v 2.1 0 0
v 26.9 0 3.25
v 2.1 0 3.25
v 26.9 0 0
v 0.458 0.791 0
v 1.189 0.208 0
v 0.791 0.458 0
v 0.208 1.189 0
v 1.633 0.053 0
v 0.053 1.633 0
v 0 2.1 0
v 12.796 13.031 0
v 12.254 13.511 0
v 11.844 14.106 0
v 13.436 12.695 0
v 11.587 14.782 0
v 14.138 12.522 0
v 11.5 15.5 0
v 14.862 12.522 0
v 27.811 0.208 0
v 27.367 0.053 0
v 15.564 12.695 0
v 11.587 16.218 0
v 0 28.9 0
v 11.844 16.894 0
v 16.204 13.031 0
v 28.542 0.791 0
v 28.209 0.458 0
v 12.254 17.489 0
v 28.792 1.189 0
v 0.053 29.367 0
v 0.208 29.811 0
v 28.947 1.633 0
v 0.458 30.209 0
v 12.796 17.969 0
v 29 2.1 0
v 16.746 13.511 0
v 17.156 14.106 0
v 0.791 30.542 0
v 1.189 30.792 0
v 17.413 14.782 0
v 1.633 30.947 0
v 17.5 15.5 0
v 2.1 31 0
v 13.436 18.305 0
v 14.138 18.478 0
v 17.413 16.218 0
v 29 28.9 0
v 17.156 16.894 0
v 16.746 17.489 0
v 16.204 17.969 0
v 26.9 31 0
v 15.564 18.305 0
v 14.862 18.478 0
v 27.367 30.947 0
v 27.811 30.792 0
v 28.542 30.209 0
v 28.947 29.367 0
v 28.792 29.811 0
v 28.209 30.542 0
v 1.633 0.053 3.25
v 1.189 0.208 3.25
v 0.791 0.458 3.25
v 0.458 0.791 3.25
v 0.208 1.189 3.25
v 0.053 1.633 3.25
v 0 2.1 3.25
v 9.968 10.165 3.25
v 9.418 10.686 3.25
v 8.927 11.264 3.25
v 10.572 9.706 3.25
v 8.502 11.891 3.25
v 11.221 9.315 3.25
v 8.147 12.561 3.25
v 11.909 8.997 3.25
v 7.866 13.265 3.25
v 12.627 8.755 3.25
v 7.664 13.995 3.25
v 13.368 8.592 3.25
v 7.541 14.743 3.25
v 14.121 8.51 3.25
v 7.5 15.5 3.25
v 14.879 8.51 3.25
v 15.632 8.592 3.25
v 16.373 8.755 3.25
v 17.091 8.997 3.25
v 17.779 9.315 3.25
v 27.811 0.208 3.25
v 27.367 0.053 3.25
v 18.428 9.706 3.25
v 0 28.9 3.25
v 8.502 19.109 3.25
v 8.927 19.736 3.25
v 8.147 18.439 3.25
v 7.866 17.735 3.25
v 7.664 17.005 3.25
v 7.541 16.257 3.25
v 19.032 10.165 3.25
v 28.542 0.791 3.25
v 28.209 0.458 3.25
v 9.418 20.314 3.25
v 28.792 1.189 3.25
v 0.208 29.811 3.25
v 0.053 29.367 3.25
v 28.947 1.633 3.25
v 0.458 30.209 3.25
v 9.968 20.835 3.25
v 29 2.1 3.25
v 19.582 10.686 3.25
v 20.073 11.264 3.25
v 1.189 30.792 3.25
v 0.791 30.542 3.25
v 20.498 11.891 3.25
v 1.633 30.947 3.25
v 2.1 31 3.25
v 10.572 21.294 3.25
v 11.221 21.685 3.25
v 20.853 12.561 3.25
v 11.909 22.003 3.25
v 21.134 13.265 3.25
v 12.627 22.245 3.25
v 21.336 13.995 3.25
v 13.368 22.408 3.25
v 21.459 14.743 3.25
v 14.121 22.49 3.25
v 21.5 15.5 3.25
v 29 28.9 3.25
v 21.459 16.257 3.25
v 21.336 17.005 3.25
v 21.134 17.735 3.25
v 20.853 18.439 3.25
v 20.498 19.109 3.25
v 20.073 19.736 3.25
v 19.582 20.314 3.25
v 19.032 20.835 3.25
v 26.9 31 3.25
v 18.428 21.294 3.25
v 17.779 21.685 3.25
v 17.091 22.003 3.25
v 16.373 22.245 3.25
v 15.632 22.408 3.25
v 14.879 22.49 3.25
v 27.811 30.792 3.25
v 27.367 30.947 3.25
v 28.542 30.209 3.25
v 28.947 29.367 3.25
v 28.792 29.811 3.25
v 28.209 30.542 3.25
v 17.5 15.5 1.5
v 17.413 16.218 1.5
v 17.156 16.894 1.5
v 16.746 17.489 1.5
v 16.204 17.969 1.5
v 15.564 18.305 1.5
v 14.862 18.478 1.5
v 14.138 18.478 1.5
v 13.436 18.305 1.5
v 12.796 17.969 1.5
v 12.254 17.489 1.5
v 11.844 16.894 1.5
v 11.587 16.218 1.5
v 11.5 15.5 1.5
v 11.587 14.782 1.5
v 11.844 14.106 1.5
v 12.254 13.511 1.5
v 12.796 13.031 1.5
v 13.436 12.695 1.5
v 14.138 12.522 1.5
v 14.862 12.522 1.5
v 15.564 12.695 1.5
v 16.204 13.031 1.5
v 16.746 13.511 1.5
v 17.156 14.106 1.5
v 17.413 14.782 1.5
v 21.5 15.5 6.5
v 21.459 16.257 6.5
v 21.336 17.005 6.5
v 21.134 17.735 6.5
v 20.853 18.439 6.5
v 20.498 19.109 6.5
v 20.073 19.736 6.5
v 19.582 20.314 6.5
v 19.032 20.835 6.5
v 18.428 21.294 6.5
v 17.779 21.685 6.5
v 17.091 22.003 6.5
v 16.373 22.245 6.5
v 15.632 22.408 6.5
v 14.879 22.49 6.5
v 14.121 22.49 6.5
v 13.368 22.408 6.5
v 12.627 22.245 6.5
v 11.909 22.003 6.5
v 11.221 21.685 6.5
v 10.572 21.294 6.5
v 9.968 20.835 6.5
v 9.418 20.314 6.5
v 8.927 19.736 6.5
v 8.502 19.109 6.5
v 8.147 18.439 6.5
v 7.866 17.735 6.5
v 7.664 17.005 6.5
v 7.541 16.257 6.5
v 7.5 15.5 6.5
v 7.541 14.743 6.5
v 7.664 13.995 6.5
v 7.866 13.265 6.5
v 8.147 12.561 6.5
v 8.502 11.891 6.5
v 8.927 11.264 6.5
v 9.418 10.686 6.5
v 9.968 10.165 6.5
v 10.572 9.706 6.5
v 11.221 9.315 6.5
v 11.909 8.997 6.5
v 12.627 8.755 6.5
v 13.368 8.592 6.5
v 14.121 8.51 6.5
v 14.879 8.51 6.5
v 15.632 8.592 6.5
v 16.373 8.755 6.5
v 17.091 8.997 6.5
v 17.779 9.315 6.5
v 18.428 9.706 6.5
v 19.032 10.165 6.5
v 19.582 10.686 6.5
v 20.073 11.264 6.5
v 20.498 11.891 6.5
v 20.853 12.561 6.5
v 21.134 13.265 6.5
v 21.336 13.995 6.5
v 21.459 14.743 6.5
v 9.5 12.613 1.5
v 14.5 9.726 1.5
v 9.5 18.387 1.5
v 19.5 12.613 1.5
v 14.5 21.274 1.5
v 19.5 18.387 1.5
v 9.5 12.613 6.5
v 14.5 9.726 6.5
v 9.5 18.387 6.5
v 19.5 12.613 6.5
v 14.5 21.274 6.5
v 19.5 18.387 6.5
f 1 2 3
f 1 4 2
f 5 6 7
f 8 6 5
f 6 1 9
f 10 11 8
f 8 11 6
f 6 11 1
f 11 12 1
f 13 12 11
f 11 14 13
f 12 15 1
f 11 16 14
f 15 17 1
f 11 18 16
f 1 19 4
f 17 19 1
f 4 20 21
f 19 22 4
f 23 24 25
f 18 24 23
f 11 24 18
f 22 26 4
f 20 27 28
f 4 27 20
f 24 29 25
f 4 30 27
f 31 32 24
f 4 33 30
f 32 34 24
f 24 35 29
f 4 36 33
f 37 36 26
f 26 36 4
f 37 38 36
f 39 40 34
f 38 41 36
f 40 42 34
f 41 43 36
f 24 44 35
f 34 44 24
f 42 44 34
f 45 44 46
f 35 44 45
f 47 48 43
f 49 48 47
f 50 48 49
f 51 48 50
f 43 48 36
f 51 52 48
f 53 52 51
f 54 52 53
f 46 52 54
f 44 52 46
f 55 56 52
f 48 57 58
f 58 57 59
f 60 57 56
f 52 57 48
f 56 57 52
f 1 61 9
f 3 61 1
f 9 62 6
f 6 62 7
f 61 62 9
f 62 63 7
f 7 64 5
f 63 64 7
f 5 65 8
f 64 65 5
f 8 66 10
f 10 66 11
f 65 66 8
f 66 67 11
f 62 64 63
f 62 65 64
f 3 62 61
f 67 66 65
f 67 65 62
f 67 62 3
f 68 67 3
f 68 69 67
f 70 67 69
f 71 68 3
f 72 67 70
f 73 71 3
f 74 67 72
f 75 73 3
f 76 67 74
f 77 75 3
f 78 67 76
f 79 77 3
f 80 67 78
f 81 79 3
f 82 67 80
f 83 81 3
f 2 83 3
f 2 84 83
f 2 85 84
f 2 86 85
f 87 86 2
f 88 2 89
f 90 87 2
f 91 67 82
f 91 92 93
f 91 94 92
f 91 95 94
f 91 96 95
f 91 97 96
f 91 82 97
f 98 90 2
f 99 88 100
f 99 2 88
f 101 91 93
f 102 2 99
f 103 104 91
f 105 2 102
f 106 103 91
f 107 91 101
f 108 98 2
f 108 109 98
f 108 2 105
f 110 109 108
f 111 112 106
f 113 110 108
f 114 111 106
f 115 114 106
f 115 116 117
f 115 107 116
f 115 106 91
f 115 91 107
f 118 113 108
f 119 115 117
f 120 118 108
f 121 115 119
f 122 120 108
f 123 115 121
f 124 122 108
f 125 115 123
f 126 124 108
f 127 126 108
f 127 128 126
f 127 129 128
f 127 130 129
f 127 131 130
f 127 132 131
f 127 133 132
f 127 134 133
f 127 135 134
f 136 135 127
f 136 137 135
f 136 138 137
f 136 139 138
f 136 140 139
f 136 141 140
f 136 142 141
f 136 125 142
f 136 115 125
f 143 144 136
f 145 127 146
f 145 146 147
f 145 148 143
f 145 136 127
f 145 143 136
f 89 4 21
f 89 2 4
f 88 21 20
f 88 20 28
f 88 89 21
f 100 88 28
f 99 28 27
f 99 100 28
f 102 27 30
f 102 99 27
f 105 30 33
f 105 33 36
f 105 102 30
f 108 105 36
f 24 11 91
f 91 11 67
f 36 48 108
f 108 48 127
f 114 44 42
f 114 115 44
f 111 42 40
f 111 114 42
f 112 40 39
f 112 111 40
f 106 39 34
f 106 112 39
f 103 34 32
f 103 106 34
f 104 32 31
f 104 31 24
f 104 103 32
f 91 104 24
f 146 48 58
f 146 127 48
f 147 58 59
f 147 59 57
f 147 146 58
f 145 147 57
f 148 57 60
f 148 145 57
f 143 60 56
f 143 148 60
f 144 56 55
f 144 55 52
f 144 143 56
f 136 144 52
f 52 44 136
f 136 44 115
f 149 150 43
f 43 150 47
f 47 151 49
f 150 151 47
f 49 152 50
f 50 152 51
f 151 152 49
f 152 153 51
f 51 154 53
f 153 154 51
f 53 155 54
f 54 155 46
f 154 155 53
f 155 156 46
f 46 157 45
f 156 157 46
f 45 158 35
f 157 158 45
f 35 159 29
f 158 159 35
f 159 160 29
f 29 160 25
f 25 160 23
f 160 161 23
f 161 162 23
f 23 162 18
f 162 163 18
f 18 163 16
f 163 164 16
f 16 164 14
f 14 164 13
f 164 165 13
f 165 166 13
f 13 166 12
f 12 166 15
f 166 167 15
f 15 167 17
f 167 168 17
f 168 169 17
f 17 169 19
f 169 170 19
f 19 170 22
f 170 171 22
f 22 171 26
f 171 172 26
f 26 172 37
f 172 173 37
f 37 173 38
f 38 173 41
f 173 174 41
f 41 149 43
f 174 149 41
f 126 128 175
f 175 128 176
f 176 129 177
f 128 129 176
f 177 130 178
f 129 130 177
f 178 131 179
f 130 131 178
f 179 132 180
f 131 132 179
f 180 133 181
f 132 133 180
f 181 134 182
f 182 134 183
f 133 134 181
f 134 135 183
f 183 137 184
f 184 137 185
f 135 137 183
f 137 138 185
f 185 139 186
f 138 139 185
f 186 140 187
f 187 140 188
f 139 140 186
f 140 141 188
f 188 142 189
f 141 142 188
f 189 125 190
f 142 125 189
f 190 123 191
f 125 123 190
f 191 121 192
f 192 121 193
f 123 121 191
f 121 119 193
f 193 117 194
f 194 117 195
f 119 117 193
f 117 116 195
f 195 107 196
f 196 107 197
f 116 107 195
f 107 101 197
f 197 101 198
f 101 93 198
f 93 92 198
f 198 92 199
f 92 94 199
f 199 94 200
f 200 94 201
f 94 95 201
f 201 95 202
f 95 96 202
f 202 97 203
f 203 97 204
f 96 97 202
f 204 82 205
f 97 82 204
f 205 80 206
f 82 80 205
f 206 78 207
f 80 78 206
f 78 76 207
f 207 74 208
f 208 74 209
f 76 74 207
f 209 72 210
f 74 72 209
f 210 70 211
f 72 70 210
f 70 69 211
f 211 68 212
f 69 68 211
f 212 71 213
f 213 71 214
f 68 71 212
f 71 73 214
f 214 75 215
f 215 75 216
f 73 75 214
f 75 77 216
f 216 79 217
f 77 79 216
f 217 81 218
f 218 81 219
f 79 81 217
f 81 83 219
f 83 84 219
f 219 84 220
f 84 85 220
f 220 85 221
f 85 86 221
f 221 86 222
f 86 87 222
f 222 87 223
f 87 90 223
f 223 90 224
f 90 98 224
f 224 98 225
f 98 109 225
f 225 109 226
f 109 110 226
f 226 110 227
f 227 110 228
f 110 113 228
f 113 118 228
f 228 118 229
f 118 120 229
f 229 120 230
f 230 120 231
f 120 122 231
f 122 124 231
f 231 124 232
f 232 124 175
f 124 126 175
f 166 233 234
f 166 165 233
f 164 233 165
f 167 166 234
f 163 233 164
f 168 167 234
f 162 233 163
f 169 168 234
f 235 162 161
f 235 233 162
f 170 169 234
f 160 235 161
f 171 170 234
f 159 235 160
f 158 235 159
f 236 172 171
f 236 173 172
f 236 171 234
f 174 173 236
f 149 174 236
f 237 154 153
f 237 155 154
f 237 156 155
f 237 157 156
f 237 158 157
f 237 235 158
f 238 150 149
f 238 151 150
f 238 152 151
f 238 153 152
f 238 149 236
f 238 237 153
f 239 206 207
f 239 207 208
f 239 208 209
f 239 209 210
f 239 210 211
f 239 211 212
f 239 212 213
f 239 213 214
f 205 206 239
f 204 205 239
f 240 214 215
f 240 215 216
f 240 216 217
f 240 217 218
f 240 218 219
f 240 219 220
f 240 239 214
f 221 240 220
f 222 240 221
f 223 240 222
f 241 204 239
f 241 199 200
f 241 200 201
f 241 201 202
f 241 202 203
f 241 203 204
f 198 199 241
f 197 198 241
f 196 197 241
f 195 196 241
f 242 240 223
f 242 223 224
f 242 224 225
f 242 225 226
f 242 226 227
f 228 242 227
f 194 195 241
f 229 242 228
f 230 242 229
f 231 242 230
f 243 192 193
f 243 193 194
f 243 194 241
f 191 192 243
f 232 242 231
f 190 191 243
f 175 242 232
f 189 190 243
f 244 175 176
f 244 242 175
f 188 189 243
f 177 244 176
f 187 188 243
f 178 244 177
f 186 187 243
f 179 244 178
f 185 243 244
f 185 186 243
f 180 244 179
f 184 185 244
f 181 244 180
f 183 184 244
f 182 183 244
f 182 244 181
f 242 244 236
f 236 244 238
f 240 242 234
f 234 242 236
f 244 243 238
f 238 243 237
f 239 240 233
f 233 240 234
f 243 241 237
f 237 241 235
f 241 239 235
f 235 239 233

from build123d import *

# Parameters (mm, degrees)
SKETCH003_R      = 3
EXTRUDE003_DEPTH = 10
EXTRUDE002_DEPTH = 5
FACE001_R        = 7
EXTRUDE001_DEPTH = 3.25
FACE_W           = 31
FACE_H           = 29
EXTRUDE_DEPTH    = 3.25
FILLET_R         = 2.1


with BuildPart() as extrude003:
    # Sketch003 (on Face19 of Cut) → Extrude003 (new body)
    with BuildSketch(Plane.XY.offset(1.5)):
        with Locations((14.5, 15.5)):
            Circle(SKETCH003_R)
    extrude(amount=-EXTRUDE003_DEPTH)


with BuildPart() as extrude002:
    # Face002 → Extrude002 (new body)
    with BuildSketch(Plane(origin=(14.5, 15.5, 6.5), x_dir=(0, 1, 0), z_dir=(0, 0, 1))):
        Polygon((-2.886751, -5), (2.886751, -5), (5.773503, 0), (2.886751, 5), (-2.886751, 5), (-5.773503, 0), align=None)
    extrude(amount=-EXTRUDE002_DEPTH)


with BuildPart() as extrude001:
    # Face001 → Extrude001 (new body)
    with BuildSketch(Plane(origin=(14.5, 15.5, 3.25), x_dir=(0, 1, 0), z_dir=(0, 0, 1))):
        Circle(FACE001_R)
    extrude(amount=EXTRUDE001_DEPTH)


with BuildPart() as cut001:
    # Face → Extrude (new body)
    with BuildSketch(Plane(origin=(14.5, 15.5, 0), x_dir=(0, 1, 0), z_dir=(0, 0, 1))):
        Rectangle(FACE_W, FACE_H)
    extrude(amount=EXTRUDE_DEPTH)

    # Fillet
    fillet_edges = [cut001.edges().sort_by_distance(p)[0] for p in [
        (0, 0, 1.625),
        (29, 0, 1.625),
        (29, 31, 1.625),
        (0, 31, 1.625),
    ]]
    fillet(fillet_edges, radius=FILLET_R)

    # Fusion: union Extrude001
    add(extrude001.part)

    # Cut: cut Extrude002
    add(extrude002.part, mode=Mode.SUBTRACT)

    # Cut001: cut Extrude003
    add(extrude003.part, mode=Mode.SUBTRACT)


solid = cut001.part
